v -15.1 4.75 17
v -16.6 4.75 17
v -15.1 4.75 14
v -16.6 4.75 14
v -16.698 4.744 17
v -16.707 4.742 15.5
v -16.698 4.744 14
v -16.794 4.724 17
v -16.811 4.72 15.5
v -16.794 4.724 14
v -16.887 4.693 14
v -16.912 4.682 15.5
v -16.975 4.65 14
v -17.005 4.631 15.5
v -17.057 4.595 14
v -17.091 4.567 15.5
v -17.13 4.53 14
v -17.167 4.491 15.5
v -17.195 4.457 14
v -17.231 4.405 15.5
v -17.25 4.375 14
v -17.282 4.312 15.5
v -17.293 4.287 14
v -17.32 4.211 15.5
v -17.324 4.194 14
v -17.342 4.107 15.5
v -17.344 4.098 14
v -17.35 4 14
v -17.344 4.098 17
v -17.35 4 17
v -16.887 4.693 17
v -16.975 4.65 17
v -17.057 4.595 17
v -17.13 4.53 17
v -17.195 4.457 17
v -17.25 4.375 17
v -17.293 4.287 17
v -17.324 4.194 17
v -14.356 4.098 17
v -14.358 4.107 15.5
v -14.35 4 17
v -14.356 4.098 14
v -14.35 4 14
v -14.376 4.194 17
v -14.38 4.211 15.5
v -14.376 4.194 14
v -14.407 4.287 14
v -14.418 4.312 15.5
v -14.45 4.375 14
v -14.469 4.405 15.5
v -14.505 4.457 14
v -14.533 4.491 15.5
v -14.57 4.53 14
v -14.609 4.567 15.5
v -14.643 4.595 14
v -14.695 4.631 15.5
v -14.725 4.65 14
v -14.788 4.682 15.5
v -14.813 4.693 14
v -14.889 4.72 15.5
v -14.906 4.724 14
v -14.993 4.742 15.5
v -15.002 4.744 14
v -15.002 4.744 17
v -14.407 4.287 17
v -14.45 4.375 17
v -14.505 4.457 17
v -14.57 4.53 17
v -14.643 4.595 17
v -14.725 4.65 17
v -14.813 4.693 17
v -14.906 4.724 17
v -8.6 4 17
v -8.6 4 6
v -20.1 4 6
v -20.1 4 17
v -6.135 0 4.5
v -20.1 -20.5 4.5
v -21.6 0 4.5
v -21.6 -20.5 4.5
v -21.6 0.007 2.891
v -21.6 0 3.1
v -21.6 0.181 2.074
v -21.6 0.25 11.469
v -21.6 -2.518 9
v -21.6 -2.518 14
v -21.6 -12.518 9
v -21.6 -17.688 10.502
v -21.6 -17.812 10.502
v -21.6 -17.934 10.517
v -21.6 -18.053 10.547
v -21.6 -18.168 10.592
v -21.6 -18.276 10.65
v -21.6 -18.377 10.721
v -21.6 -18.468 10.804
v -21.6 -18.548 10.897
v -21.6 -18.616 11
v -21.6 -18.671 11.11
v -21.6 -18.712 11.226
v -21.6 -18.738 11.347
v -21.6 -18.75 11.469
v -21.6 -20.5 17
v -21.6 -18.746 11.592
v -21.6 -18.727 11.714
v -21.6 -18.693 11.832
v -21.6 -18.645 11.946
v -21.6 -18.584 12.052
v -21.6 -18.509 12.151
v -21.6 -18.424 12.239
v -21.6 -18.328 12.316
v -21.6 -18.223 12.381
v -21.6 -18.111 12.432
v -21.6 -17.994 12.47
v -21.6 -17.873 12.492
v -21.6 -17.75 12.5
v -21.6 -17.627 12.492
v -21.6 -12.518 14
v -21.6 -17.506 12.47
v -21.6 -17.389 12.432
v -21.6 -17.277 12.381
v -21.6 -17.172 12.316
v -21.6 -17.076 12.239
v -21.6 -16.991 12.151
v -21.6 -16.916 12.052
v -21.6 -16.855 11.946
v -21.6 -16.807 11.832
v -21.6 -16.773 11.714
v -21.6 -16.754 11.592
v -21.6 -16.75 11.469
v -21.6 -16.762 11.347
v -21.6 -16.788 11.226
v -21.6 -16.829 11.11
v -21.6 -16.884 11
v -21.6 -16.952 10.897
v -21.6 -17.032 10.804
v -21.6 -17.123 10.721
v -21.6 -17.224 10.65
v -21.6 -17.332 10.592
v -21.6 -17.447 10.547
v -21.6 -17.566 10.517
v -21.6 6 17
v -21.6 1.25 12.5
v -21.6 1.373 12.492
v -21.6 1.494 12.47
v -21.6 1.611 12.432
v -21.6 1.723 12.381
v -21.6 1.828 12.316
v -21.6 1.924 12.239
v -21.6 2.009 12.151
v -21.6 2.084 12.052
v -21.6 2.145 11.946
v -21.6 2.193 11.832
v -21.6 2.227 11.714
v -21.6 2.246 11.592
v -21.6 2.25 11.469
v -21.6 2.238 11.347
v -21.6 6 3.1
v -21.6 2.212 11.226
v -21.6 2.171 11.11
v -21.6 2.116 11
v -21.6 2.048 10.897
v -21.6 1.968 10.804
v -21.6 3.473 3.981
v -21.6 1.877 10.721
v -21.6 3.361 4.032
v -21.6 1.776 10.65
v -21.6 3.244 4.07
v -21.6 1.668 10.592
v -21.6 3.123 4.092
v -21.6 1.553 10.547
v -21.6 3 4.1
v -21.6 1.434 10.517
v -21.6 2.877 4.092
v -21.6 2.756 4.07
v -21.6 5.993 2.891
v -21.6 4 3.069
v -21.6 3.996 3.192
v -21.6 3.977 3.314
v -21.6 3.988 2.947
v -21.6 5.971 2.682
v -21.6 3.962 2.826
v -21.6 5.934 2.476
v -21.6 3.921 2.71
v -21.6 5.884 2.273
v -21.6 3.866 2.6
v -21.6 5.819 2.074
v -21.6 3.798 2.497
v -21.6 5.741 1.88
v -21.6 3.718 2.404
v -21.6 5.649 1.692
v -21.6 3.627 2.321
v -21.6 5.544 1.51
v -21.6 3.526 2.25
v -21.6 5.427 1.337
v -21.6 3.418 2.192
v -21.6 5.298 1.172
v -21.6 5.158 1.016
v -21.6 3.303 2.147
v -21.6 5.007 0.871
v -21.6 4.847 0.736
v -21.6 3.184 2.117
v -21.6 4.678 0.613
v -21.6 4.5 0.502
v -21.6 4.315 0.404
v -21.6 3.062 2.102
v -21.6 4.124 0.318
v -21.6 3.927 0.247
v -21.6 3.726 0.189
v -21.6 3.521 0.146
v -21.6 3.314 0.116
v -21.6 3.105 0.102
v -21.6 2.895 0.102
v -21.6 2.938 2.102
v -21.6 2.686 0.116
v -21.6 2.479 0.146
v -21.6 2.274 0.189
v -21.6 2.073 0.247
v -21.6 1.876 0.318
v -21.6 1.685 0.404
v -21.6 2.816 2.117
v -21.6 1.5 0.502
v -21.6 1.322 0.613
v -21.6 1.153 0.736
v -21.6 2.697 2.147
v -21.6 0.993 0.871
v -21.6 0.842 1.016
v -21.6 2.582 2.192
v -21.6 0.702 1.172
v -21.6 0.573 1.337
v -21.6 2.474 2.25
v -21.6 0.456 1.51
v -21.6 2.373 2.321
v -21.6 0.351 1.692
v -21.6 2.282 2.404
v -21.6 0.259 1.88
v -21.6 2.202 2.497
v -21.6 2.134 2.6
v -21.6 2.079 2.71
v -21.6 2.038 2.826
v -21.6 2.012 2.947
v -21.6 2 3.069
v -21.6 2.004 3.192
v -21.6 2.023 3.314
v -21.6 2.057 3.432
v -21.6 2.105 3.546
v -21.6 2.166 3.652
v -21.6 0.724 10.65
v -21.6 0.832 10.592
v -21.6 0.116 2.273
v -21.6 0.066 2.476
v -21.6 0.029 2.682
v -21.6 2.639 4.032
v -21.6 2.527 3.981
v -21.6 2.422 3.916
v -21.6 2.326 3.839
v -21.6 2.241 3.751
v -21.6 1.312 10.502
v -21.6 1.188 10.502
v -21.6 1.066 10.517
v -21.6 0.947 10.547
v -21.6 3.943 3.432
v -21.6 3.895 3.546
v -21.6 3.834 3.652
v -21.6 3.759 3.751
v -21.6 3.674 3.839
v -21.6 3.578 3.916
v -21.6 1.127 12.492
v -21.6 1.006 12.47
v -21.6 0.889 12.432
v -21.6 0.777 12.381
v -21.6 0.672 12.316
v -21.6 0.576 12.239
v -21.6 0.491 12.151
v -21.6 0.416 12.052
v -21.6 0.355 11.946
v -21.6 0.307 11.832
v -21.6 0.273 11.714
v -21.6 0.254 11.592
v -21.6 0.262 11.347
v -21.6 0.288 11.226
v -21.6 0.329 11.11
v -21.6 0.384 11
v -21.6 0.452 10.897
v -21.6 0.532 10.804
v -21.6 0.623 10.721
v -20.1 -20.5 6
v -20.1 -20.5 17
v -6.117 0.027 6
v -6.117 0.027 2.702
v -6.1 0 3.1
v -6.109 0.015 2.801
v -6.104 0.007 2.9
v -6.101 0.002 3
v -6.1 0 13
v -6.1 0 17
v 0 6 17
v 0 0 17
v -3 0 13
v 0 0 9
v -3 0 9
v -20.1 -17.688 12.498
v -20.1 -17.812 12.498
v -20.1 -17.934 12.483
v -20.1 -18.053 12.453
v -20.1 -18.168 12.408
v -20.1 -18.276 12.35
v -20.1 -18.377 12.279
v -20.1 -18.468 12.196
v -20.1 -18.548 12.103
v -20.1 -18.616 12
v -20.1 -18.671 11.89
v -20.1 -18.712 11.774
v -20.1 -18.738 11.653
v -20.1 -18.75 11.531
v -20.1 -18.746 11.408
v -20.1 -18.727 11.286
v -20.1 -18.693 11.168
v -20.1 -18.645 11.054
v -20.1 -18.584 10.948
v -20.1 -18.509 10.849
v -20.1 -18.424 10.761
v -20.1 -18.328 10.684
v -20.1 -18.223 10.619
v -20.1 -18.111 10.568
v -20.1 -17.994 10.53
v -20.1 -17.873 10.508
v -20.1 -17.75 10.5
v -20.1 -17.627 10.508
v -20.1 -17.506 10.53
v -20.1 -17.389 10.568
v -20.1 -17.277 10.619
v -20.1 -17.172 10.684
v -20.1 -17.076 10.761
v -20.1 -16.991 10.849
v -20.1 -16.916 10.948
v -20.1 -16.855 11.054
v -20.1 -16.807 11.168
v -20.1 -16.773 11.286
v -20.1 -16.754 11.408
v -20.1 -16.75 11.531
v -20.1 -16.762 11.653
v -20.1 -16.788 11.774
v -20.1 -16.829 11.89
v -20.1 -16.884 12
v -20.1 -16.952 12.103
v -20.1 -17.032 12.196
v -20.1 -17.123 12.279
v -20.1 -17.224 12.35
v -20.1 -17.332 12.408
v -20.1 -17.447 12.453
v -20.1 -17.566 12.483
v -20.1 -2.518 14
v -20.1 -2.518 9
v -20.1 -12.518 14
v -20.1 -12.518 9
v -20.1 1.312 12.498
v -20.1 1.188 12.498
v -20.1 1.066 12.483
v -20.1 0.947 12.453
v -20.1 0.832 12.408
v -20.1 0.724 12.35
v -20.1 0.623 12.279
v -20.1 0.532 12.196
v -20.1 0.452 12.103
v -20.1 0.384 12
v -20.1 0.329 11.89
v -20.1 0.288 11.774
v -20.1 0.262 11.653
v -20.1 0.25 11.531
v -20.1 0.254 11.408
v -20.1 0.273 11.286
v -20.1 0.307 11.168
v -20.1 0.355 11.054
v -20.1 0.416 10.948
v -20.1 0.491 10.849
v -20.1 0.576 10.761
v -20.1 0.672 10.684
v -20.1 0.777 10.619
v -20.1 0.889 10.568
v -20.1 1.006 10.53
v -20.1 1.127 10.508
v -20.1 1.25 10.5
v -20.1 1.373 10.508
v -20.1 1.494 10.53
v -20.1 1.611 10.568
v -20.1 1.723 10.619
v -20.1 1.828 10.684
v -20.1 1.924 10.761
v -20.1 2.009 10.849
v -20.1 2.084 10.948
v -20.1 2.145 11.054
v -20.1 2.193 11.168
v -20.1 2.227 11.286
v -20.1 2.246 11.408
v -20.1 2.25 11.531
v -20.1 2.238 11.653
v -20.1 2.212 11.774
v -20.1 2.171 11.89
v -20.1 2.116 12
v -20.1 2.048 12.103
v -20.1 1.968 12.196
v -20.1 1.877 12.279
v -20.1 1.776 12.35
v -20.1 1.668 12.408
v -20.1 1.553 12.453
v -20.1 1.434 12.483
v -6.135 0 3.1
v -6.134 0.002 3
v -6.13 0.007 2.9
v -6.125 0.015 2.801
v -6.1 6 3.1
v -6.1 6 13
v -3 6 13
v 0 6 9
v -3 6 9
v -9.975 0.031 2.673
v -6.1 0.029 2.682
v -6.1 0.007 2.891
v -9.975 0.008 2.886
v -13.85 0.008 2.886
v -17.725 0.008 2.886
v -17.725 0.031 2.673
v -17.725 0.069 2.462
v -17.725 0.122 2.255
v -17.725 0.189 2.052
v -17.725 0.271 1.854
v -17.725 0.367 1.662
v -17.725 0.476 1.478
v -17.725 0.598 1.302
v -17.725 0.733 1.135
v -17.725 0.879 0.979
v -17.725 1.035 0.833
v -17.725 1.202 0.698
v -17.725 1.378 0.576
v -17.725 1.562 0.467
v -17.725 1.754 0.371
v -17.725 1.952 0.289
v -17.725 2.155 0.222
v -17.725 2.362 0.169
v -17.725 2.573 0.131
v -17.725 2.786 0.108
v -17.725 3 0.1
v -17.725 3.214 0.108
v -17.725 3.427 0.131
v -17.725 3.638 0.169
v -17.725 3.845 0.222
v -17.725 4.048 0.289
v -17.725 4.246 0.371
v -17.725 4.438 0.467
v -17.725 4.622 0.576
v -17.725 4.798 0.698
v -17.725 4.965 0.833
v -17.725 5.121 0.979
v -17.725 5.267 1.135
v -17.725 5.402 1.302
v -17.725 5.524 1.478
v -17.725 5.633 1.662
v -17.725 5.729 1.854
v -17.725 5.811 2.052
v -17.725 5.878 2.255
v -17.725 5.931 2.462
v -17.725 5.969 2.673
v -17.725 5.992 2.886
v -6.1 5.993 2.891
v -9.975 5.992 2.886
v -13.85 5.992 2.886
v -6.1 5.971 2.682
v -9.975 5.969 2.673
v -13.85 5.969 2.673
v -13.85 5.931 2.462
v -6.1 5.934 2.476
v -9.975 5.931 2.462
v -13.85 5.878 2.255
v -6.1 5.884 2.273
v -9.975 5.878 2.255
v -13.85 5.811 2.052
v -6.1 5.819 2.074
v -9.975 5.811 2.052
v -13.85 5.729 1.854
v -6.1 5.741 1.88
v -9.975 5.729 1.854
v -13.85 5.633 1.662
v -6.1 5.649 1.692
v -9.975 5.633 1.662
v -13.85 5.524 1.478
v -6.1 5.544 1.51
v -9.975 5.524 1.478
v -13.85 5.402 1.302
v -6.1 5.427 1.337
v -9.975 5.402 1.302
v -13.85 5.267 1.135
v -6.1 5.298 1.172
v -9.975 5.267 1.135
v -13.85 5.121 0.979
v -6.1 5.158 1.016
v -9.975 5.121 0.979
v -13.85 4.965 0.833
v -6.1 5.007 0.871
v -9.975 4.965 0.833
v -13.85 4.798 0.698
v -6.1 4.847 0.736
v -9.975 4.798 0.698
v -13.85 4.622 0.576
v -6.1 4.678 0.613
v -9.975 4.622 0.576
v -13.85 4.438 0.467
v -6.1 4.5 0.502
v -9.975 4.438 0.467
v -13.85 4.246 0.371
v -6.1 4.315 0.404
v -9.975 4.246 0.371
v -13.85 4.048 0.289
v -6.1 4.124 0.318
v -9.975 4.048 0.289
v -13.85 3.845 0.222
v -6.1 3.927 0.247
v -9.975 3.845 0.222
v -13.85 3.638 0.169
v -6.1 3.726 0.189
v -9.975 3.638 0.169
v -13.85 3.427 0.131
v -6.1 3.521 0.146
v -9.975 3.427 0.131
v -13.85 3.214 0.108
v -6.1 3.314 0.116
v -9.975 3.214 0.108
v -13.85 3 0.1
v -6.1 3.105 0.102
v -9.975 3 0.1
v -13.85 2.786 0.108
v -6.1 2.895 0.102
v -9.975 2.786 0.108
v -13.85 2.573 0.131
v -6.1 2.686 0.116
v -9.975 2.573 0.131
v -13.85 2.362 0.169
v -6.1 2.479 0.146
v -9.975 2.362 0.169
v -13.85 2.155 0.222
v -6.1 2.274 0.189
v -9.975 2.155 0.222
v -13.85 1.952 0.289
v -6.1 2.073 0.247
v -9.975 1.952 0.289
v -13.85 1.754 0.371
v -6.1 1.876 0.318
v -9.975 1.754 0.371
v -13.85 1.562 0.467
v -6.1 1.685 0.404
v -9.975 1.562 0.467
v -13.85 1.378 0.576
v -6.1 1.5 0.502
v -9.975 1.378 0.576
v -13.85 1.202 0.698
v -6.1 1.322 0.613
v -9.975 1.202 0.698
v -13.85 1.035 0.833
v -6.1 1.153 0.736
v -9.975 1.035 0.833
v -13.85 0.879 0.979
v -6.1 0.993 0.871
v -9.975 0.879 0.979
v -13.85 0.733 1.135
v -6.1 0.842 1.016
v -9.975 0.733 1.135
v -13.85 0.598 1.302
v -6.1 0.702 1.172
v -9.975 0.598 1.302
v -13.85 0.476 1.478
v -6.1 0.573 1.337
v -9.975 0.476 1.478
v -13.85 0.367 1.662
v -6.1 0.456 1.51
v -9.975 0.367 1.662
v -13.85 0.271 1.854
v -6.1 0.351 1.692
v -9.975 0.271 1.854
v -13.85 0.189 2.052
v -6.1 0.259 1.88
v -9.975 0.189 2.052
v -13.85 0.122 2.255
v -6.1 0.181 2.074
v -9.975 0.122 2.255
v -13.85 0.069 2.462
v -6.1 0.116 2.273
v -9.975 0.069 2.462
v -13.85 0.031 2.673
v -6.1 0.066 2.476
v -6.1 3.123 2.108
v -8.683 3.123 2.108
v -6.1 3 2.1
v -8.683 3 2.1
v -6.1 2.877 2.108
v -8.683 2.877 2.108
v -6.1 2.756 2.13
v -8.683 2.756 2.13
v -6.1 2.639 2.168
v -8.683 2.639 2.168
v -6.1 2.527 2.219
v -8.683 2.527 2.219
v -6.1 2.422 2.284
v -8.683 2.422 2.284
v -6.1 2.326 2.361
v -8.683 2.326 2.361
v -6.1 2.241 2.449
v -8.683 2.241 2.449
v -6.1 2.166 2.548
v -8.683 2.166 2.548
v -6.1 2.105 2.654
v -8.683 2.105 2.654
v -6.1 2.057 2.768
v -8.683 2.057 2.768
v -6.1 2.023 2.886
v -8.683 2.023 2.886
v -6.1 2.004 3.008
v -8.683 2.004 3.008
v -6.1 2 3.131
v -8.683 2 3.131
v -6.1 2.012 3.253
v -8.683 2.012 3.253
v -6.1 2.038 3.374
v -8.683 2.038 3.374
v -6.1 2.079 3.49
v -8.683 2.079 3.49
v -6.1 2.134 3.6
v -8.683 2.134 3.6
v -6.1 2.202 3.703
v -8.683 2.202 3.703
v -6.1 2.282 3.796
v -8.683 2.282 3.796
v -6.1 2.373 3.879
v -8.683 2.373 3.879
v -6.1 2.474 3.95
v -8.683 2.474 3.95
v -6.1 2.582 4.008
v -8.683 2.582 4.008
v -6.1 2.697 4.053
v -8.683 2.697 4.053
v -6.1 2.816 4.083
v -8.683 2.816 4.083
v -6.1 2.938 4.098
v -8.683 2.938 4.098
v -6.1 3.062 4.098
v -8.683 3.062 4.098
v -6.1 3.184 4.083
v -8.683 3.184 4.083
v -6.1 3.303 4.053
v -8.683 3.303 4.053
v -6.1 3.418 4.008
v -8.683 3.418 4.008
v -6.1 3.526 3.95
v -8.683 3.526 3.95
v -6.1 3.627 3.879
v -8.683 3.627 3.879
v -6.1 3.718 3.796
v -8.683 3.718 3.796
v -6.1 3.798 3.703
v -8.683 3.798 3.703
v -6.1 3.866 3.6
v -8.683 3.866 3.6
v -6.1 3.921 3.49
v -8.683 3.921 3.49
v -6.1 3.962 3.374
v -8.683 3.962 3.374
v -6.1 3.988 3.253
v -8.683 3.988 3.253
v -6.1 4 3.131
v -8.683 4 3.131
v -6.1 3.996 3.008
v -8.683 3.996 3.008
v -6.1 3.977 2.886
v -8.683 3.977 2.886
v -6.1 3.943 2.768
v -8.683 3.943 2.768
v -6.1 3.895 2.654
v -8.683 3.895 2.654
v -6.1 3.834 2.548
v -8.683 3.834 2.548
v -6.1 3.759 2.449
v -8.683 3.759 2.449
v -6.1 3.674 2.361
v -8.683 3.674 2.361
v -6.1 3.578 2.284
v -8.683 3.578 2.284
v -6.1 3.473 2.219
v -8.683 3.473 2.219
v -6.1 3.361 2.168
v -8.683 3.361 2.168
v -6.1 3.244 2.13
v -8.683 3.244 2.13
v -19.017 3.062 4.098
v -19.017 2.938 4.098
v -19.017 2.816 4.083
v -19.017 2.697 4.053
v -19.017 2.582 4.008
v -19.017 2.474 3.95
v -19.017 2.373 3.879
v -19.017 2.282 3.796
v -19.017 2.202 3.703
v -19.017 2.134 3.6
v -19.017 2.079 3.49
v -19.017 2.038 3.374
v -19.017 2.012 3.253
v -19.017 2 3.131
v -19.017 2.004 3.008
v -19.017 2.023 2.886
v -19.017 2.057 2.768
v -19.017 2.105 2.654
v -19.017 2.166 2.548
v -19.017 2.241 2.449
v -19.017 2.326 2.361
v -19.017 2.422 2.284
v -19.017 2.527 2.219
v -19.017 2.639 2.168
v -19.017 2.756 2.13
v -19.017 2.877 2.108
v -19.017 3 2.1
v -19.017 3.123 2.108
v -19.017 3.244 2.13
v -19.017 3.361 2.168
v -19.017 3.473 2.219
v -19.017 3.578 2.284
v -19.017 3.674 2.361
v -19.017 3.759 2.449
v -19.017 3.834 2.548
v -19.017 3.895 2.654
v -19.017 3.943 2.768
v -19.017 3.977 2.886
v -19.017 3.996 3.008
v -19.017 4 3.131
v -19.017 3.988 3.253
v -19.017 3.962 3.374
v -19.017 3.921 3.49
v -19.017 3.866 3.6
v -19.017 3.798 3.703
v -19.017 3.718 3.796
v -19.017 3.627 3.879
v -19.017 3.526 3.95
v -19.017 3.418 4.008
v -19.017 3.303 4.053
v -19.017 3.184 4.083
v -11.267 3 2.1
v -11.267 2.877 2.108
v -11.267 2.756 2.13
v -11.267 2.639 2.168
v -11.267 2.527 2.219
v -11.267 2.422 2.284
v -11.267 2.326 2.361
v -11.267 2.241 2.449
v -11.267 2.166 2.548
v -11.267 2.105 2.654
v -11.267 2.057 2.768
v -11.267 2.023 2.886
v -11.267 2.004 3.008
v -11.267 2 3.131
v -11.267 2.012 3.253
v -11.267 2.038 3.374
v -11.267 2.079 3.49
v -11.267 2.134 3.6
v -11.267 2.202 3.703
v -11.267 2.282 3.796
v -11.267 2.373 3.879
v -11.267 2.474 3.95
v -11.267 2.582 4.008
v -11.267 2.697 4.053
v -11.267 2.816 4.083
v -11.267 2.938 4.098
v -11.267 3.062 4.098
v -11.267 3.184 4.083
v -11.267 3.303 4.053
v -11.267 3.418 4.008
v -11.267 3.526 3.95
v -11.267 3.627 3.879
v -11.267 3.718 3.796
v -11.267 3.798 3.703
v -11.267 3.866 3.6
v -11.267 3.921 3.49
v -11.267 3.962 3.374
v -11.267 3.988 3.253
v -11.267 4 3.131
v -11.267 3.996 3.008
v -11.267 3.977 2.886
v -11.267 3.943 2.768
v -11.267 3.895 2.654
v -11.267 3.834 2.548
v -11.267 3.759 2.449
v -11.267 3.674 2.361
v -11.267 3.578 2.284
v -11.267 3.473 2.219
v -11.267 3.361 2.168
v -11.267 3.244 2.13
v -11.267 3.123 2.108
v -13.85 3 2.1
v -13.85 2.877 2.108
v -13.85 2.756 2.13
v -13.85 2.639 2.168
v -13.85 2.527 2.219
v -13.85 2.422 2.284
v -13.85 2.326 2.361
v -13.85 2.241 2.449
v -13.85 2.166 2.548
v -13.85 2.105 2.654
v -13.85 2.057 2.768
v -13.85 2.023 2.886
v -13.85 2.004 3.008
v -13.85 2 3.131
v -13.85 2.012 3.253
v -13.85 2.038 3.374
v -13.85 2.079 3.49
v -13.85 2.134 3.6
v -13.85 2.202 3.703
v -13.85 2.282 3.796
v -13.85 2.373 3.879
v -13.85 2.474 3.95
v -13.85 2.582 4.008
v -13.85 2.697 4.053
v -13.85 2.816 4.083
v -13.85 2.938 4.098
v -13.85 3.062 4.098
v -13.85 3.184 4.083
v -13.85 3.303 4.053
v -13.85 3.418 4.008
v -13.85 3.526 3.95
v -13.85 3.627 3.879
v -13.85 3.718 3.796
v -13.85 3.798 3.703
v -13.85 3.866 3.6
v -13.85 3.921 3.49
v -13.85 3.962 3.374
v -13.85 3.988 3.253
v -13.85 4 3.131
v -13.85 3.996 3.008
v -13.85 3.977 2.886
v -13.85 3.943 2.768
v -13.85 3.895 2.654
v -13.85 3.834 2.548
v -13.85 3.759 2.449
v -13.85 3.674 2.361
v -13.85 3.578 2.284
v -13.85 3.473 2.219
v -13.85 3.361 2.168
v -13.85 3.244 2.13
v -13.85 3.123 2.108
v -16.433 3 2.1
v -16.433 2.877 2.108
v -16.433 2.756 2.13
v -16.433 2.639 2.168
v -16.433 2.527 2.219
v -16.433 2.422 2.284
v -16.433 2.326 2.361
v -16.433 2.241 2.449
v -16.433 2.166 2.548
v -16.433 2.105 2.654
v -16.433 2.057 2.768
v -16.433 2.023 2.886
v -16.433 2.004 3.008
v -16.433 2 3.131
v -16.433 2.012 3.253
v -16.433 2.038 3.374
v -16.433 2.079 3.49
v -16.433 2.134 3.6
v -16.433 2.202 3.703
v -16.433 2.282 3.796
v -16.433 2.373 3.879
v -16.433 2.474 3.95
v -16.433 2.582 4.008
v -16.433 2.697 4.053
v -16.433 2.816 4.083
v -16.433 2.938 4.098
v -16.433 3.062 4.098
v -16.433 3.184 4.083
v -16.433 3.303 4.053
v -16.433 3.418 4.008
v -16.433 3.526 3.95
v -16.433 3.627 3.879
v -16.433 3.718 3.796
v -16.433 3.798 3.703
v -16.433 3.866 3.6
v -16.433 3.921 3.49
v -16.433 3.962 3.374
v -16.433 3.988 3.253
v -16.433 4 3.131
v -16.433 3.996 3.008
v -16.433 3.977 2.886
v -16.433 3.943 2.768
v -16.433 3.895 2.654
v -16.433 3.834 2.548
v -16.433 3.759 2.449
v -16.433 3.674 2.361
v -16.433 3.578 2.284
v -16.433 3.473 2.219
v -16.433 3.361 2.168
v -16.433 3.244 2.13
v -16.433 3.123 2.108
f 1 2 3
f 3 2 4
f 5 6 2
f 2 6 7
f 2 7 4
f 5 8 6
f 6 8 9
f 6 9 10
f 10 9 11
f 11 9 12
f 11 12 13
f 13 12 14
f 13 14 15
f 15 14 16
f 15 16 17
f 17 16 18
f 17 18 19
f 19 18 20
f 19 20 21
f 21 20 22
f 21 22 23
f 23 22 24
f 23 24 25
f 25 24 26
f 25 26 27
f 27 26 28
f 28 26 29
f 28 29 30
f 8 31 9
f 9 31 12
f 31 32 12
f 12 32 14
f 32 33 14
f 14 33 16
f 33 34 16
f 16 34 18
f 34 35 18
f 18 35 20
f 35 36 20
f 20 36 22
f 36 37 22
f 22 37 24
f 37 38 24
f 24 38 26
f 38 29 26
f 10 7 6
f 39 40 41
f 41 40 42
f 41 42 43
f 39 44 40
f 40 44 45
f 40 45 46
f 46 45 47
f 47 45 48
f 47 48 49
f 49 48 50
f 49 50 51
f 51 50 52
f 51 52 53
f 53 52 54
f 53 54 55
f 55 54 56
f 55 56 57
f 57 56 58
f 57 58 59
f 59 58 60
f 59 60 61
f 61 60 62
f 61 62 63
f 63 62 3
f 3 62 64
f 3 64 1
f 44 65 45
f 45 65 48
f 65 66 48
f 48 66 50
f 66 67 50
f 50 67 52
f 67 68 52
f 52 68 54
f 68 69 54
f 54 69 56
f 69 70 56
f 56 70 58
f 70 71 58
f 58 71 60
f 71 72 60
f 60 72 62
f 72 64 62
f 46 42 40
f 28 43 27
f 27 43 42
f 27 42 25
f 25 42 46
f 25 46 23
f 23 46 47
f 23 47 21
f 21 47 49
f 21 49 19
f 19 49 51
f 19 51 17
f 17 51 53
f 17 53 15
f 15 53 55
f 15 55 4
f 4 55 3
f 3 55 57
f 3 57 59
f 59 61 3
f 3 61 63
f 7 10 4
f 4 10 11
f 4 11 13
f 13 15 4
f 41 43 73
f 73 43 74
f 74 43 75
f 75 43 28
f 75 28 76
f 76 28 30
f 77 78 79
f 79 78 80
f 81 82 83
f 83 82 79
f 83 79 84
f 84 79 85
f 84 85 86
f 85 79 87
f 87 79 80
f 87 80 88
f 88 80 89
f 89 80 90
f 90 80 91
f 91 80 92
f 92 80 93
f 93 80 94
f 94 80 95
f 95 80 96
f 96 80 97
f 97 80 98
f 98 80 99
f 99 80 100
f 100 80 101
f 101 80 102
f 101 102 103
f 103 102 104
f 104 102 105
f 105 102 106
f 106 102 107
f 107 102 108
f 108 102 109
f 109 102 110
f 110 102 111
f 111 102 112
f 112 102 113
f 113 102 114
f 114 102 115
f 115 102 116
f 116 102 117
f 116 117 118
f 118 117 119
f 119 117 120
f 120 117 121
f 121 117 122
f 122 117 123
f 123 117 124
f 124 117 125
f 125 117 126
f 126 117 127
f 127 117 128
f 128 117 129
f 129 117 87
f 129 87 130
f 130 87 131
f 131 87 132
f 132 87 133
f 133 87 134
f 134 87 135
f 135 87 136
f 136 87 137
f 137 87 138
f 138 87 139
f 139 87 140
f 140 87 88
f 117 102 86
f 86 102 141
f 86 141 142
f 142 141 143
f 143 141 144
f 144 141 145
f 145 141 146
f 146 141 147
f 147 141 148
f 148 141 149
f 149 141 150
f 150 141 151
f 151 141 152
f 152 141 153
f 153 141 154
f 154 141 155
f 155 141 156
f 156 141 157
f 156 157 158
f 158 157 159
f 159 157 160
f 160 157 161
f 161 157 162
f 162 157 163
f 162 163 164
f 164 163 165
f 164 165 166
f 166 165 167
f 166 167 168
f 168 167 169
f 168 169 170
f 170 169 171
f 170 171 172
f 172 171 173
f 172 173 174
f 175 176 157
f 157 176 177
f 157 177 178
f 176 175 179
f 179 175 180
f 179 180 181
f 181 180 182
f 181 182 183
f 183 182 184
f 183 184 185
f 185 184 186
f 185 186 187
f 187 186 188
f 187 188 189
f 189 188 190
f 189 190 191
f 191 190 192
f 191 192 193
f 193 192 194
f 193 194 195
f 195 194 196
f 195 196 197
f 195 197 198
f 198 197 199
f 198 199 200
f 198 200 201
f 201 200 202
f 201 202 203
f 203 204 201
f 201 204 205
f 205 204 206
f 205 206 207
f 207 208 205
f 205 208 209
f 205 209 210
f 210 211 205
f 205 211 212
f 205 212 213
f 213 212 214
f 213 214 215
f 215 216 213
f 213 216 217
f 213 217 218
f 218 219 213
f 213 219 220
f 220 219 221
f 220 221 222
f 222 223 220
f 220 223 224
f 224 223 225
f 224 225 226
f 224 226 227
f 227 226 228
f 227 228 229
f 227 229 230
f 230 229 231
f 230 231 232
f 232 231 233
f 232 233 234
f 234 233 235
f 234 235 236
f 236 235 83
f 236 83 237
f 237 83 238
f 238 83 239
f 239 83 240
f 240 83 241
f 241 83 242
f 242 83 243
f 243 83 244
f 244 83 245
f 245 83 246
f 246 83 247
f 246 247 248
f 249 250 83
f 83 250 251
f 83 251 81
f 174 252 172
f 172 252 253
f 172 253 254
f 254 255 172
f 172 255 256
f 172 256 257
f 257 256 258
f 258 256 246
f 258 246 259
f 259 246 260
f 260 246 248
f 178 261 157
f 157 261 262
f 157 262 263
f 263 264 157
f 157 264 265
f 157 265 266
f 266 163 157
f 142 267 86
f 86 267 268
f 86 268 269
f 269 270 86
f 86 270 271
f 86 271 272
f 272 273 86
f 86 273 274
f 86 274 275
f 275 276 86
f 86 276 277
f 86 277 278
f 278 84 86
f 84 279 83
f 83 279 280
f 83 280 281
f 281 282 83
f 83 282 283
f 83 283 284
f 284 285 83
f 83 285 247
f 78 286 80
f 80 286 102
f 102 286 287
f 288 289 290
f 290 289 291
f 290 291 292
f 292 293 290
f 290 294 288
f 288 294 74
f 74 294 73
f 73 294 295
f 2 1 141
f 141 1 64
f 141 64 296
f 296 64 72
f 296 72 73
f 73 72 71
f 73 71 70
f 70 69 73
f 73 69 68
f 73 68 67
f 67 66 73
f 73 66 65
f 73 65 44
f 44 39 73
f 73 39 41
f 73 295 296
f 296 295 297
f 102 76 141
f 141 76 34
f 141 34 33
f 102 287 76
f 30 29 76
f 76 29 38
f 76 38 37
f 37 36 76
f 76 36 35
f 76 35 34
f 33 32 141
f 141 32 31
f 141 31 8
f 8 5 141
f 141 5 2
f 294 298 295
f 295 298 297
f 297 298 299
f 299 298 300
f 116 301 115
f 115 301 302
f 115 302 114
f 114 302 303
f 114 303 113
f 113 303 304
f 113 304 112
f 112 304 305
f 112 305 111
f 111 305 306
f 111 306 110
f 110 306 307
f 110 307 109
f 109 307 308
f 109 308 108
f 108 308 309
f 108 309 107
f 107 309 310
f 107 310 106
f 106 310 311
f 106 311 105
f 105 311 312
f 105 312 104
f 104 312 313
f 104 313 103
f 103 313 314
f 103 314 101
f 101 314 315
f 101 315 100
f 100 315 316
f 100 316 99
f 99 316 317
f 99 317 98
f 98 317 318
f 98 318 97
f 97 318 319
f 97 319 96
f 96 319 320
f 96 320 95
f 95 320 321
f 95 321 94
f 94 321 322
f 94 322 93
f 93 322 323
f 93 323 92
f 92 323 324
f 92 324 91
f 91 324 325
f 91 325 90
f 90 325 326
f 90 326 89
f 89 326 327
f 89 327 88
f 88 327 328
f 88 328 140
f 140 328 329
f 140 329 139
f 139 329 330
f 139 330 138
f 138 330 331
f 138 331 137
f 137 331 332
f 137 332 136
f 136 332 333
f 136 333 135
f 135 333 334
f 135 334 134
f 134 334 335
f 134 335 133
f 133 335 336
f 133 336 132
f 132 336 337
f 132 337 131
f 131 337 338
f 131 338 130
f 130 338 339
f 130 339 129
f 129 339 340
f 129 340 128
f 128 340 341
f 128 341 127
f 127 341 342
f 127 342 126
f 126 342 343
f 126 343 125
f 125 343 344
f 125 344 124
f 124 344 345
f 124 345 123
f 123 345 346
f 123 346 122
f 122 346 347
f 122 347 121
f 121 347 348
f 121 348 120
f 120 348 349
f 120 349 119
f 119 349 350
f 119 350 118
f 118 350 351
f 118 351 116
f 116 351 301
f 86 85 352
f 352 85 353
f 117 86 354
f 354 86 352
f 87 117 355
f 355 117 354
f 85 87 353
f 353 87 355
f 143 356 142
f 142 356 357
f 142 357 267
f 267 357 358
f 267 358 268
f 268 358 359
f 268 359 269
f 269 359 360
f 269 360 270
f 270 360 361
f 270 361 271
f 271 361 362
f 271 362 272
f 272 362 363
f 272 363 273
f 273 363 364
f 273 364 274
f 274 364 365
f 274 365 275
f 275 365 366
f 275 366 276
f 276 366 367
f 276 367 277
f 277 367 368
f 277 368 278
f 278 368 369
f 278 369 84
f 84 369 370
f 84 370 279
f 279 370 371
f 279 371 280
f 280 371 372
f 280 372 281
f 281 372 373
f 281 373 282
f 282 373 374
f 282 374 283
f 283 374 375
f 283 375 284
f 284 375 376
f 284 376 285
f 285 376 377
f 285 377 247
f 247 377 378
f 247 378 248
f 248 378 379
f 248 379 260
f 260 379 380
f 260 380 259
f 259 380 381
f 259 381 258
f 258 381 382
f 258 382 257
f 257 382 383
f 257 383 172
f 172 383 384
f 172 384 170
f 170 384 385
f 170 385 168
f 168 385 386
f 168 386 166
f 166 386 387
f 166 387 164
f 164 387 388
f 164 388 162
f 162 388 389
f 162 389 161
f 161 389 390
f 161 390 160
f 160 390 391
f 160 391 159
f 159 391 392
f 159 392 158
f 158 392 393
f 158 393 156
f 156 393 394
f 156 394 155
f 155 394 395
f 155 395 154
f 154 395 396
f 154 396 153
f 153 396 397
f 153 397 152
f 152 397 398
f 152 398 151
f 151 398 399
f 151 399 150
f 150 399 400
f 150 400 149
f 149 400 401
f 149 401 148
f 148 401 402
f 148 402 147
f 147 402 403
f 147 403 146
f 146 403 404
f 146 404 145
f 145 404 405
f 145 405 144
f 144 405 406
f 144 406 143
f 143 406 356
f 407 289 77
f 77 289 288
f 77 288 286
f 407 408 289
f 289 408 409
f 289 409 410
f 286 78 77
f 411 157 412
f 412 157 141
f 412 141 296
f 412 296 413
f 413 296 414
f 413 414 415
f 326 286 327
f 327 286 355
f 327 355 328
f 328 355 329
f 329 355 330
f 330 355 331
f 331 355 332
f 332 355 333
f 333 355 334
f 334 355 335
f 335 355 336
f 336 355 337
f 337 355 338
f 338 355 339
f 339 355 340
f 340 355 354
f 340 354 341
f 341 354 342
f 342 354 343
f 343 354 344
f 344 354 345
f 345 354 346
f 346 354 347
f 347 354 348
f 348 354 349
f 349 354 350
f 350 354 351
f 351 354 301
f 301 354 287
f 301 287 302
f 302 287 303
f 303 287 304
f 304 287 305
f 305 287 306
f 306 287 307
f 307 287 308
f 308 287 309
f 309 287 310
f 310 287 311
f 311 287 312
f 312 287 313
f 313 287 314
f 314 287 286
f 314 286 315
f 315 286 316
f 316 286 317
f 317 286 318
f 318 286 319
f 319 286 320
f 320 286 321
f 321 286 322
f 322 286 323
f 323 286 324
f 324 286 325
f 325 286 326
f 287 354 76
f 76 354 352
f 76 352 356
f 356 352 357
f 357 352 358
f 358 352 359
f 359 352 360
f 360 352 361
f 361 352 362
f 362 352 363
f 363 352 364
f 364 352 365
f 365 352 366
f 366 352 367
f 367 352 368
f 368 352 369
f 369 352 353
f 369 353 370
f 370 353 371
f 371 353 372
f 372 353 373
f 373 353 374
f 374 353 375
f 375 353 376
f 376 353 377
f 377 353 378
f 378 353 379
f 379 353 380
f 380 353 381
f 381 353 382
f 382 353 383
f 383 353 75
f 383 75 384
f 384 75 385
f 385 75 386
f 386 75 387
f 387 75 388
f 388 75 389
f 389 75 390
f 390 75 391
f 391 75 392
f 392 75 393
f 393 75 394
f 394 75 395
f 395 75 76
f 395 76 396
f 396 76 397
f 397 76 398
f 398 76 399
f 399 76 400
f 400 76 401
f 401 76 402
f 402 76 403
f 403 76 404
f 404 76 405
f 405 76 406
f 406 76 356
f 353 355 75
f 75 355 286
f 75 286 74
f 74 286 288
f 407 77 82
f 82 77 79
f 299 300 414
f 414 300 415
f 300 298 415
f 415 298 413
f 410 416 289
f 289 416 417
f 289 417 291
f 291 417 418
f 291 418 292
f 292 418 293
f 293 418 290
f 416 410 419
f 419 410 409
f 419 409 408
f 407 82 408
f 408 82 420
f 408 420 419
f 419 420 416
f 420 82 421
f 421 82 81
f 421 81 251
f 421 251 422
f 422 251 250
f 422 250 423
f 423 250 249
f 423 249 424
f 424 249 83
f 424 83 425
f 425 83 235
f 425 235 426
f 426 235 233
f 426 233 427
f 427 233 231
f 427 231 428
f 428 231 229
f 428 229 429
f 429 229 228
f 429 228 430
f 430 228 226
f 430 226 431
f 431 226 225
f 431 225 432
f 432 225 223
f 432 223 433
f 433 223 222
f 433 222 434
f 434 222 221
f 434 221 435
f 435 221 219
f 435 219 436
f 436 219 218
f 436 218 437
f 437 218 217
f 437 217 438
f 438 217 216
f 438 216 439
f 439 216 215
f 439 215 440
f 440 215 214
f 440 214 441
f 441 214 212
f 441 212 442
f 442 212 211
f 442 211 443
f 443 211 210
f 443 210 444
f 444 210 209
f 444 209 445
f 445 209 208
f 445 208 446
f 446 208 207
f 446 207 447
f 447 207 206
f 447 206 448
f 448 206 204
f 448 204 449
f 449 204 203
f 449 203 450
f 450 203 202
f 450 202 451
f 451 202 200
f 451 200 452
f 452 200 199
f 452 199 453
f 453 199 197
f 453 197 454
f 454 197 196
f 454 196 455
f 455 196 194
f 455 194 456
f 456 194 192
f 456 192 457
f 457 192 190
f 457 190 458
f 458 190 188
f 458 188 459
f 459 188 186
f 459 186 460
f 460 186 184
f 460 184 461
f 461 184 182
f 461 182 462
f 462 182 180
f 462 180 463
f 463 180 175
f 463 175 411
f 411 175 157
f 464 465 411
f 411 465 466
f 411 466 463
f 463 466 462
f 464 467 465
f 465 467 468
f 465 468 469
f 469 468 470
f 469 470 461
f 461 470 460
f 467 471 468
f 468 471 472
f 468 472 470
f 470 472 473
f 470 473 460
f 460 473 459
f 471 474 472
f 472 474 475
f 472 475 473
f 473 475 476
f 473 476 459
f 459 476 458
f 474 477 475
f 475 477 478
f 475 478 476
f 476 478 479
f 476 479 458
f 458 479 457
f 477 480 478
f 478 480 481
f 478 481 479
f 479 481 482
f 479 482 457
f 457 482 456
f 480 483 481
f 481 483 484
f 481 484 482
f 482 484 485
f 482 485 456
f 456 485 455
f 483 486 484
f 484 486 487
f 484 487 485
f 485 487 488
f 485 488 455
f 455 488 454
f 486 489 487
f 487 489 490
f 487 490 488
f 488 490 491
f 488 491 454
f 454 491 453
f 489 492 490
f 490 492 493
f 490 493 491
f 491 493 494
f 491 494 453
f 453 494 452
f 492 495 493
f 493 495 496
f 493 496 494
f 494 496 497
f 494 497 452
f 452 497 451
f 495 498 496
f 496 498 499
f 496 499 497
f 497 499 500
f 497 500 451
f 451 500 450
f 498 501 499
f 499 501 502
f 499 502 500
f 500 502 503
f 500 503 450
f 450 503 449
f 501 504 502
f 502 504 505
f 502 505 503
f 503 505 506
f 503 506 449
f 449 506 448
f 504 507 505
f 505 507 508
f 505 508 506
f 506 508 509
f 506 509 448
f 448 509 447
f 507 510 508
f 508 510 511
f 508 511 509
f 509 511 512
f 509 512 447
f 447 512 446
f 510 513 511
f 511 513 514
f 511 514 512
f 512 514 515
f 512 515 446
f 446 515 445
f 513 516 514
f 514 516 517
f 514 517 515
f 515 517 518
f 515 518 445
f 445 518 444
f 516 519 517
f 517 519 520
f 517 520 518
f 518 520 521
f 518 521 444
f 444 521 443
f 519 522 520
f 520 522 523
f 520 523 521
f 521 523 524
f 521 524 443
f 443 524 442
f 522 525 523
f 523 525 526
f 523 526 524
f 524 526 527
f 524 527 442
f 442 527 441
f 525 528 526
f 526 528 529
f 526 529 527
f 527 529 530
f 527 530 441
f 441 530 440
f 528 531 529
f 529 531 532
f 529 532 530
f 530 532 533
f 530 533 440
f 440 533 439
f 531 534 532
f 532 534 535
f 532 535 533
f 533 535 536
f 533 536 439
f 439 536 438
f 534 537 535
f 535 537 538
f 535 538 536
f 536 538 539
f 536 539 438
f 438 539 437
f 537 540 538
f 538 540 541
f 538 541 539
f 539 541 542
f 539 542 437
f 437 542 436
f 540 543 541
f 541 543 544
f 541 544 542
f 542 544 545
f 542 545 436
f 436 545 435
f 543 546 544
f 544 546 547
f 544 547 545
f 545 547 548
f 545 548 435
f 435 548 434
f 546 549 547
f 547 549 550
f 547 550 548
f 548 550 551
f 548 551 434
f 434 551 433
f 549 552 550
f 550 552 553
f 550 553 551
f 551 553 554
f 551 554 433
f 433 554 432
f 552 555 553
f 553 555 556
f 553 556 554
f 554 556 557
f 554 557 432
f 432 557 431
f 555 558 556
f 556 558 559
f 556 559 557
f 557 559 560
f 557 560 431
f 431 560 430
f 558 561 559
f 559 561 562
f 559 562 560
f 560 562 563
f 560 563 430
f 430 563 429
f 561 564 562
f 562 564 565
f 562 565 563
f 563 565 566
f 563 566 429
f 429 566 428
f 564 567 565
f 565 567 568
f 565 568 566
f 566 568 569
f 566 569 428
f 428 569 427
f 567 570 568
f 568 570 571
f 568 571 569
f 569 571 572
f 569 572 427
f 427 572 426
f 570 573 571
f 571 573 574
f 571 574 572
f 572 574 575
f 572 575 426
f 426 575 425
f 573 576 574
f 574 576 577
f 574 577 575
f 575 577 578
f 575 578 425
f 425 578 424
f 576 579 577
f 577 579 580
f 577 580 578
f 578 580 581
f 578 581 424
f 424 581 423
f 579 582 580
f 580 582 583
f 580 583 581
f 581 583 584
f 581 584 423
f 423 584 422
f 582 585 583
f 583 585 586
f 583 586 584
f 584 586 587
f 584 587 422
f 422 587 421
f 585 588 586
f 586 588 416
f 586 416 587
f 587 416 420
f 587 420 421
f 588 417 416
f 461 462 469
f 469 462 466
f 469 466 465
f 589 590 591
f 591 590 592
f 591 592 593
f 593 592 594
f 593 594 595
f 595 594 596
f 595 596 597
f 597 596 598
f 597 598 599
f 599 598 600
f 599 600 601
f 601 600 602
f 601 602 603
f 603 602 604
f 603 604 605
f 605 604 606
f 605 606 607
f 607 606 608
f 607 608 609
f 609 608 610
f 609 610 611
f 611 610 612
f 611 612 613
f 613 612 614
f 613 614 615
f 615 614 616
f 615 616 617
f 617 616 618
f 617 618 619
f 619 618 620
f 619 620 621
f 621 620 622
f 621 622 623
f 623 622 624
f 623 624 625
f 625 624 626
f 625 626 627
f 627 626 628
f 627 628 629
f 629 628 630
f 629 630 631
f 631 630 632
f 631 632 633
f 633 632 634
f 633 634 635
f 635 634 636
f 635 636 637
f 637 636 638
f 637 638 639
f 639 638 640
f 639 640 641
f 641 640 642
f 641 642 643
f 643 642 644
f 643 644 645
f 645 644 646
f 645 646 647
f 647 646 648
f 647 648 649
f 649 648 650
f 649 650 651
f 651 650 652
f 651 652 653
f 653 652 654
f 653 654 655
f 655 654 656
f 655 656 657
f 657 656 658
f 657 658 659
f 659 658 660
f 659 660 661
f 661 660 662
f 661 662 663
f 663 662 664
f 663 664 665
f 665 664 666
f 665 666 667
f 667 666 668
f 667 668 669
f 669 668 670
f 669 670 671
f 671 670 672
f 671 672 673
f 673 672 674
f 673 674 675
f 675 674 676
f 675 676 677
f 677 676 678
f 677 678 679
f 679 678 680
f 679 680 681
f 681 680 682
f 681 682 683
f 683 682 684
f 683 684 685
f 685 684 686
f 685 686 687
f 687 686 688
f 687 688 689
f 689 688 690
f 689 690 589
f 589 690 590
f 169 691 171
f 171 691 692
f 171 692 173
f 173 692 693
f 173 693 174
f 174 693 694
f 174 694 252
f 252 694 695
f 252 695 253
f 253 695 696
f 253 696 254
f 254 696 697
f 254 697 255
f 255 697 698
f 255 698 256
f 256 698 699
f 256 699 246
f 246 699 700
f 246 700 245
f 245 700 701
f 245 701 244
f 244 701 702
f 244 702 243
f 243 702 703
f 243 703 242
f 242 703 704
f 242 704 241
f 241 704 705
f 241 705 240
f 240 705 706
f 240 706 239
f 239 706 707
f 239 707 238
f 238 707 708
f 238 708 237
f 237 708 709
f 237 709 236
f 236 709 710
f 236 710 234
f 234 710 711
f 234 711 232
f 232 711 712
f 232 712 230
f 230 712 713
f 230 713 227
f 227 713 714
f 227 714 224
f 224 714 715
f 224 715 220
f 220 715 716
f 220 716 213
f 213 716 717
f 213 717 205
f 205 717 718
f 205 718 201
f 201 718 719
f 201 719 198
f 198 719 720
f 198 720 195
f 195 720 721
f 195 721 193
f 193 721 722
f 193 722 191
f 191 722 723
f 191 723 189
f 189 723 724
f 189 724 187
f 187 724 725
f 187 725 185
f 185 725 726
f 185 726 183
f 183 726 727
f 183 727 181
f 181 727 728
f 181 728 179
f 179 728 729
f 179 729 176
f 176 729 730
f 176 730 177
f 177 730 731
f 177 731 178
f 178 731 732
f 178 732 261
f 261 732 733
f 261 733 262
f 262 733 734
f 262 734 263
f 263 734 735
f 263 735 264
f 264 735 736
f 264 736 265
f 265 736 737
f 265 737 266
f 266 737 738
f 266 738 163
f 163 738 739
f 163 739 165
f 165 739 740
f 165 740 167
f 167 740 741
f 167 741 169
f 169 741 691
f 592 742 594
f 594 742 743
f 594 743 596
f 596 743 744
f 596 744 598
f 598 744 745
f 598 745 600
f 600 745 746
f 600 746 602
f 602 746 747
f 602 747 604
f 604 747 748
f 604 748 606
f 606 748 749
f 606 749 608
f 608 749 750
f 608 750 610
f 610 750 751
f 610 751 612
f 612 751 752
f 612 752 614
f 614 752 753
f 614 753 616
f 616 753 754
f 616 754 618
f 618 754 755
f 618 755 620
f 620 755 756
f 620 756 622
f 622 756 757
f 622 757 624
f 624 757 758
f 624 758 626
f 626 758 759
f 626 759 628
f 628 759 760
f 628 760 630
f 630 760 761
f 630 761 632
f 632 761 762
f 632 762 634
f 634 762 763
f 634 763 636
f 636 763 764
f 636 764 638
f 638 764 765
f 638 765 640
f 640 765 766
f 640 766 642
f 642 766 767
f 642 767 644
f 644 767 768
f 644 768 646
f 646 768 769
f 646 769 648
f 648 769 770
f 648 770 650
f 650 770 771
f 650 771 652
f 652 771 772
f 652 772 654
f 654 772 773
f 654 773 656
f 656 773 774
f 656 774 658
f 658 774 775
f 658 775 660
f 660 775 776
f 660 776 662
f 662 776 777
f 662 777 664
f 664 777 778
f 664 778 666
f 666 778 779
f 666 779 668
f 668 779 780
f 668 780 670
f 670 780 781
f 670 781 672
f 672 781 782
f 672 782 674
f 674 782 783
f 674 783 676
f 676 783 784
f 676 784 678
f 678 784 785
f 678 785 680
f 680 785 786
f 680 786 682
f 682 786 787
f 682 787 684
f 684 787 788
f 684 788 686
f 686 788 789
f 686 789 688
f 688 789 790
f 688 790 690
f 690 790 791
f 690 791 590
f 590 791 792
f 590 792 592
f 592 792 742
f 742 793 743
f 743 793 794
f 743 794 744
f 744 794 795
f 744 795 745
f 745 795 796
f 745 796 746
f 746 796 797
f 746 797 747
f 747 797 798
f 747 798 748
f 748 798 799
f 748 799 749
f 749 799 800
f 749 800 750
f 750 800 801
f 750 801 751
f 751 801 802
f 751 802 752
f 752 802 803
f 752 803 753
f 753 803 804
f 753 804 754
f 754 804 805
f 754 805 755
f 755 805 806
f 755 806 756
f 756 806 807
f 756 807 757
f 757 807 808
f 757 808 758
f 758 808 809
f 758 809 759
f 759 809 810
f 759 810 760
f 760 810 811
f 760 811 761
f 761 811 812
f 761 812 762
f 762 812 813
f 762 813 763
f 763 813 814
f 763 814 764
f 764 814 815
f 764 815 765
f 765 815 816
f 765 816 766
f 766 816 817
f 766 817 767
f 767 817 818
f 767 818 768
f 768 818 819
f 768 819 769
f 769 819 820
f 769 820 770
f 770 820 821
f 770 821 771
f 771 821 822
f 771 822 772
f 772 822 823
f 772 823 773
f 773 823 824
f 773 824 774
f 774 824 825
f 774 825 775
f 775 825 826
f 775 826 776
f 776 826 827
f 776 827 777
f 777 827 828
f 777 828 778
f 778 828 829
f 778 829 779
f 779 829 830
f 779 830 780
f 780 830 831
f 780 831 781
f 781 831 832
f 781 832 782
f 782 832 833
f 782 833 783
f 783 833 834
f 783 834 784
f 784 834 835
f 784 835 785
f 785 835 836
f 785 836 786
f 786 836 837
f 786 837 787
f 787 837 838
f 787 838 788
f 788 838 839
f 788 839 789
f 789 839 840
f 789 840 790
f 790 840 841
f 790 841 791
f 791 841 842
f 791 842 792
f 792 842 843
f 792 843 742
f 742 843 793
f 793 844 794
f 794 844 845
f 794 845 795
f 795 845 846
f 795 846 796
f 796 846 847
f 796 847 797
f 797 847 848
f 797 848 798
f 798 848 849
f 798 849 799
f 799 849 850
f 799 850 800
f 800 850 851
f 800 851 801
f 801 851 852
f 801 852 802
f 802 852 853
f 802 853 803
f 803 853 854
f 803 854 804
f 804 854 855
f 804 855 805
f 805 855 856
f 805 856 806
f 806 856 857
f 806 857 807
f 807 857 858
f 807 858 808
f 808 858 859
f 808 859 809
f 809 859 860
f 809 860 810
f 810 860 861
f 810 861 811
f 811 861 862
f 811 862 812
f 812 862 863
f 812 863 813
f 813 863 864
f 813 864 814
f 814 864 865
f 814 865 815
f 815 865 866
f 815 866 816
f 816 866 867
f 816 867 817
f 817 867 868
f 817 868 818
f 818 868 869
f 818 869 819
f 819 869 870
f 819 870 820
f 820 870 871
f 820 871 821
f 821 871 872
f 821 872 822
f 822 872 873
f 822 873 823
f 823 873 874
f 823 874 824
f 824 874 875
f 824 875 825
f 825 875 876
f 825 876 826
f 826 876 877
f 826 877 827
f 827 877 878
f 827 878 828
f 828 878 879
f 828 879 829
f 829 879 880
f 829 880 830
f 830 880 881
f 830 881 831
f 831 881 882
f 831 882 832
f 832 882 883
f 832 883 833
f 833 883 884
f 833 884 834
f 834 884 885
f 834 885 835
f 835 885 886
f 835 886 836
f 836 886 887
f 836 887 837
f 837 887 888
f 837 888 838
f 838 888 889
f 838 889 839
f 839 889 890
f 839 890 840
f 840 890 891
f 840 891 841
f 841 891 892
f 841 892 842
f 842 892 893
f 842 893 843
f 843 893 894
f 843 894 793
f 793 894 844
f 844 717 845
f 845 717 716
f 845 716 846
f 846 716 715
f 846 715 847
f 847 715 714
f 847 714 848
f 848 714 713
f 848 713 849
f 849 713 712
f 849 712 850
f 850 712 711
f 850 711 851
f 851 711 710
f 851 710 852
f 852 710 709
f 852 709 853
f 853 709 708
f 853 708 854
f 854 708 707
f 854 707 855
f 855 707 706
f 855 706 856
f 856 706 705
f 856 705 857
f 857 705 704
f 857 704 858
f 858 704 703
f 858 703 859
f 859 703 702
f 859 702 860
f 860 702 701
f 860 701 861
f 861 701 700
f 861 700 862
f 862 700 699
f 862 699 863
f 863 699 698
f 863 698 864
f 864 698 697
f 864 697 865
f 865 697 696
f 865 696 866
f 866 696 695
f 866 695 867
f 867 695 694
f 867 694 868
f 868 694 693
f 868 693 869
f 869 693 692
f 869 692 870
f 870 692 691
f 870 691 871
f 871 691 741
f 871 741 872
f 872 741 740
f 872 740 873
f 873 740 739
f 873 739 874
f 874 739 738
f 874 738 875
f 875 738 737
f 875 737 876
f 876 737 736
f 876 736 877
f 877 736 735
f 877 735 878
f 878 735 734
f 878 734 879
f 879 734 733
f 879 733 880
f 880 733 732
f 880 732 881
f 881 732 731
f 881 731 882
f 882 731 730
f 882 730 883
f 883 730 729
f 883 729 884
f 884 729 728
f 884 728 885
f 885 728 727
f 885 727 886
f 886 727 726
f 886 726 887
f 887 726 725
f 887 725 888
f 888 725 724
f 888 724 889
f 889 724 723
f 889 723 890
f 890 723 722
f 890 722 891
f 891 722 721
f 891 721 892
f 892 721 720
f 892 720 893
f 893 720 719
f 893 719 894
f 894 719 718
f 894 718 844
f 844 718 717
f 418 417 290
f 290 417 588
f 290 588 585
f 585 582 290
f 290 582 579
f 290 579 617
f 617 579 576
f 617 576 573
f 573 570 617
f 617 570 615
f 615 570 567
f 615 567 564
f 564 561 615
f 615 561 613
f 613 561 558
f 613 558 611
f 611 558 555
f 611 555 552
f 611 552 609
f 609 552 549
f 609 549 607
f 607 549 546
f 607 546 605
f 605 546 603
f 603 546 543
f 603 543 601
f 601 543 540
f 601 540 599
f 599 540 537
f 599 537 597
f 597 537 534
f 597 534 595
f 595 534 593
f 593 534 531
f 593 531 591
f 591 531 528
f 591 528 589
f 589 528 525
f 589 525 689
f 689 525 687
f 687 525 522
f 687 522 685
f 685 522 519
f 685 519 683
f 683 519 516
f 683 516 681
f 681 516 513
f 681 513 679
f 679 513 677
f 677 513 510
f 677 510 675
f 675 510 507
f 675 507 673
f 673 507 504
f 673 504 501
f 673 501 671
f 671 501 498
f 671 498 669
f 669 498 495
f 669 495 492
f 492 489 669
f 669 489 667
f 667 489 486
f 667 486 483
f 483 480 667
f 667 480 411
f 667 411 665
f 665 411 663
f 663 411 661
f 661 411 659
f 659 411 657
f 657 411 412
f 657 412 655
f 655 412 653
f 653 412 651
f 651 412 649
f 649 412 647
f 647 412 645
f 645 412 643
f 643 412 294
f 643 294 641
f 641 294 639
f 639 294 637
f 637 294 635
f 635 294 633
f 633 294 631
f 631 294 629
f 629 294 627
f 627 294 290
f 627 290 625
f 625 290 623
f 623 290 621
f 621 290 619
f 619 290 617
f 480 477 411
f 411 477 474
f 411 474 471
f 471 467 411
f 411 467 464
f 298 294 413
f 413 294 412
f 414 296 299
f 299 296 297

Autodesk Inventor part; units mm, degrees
ref_plane "YZ Plane" through (0, 0, 0) normal (1, 0, 0) x (0, 1, 0)
ref_plane "XZ Plane" through (0, 0, 0) normal (0, 1, 0) x (-1, 0, 0)
ref_plane "XY Plane" through (0, 0, 0) normal (0, 0, 1) x (1, 0, 0)
sketch "Sketch1" plane through (0, 0, 0) normal (0, 1, 0) x (-1, 0, 0)
  line L0 (0, 0) -> (21.6, 0)
  line L1 (21.6, 0) -> (21.6, 17)
  line L2 (21.6, 17) -> (0, 17)
  line L3 (0, 17) -> (0, 0)
  line L4 (6.1, 13) -> (3, 13)
  line L5 (3, 13) -> (3, 0)
  line L6 (3, 0) -> (6.1, 0)
  line L7 (6.1, 0) -> (6.1, 13)
  line L8 (21.6, 17) -> (9.1, 17)
  line L9 (9.1, 17) -> (9.1, 0)
  line L10 (9.1, 0) -> (21.6, 0)
  line L11 (21.6, 0) -> (21.6, 17)
  line L12 (9.1, 17) -> (21.6, 6.2)
  point P0 (21.6, 6.2)
  point P1 (9.1, 17)
  dimension "d1" = 17
  dimension "d2" = 3.1
  dimension "d3" = 3
  dimension "d4" = 3
  dimension "d5" = 6.2
  dimension "d17" = 13
  dimension "d18" = 12.5
extrude "Extrusion1" add sketch "Sketch1" along normal blind 6 contours L3 L2 L9 L0 L7 L4 L5 | L12 L1 L0 L9
sketch "Sketch2" plane through (-21.6, 0, 0) normal (-1, 0, 0) x (0, 0, 1)
  circle A0 centre (3.1, 3) radius 3
  line L0 (0, 0) -> (13, 0) projected
  line L1 (0, 0) -> (0, 6) projected
  line L2 (17, 6) -> (0, 6) projected
  line L3 (0, 0) -> (6.2302, 0)
  line L4 (6.2302, 0) -> (6.2302, 6)
  line L5 (6.2302, 6) -> (0, 6)
  line L6 (0, 6) -> (0, 0)
  circle A1 centre (3.1, 3) radius 1
  point P0 (3.1, 6)
  point P1 (3.1, 0)
  dimension "d8" = 3.1
  dimension "d9" = 2
extrude "Extrusion2" cut sketch "Sketch2" against normal up to surface (18.6 mm away) contours A0 L0 L1 L2 | A1
sketch "Sketch3" plane through (0, 6, 0) normal (0, 1, 0) x (1, 0, 0)
  line L0 (-3, 0) -> (-3, -13) projected
  line L1 (0, 0) -> (-3, 0) projected
  line L2 (-3, -9) -> (0, -9)
  line L3 (0, -9) -> (0, 0)
  line L4 (0, 0) -> (-3, 0)
  line L5 (-3, 0) -> (-3, -9)
  line L6 (-3, -13) -> (-6.1, -13) projected
  line L7 (-9.1, -17) -> (0, -17) projected
  dimension "d13" = 8
extrude "Extrusion3" cut sketch "Sketch3" against normal blind 10
sketch "Sketch4" plane through (0, 0, 0) normal (0, -1, 0) x (1, 0, 0)
  line L0 (-21.6, 6.2) -> (-9.1, 17) projected
  line L1 (-9.1, 17) -> (-20.1, 17)
  line L2 (-20.1, 17) -> (-20.1, 7.496)
  line L3 (-20.1, 7.496) -> (-9.1, 7.496)
  line L4 (-9.1, 7.496) -> (-9.1, 17)
  line L5 (-6.1, 13) -> (-6.1, 3.1) projected
  point P0 (0, 0)
  dimension "d19" = 14
extrude "Extrusion4" cut sketch "Sketch4" against normal blind 4 contours L0 L4 L3
sketch "Sketch5" plane through (0, 0, 0) normal (0, -1, 0) x (1, 0, 0)
  line L0 (-9.1, 17) -> (-9.1, 7.496) projected
  line L1 (-9.1, 17) -> (-8.6, 17)
  line L2 (-8.6, 17) -> (-8.6, 7.496)
  line L3 (-8.6, 7.496) -> (-9.1, 7.496)
  line L4 (-9.1, 7.496) -> (-9.1, 17)
  line L5 (-6.1, 13) -> (-6.1, 3.1) projected
  point P0 (0, 0)
  dimension "d22" = 2.5
extrude "Extrusion5" cut sketch "Sketch5" against normal up to surface (4 mm away)
sketch "Sketch7" plane through (0, 4, 0) normal (0, -1, 0) x (1, 0, 0)
  line L0 (-8.6, 7.496) -> (-8.6, 17) projected
  line L1 (-8.6, 17) -> (-20.1, 17)
  line L2 (-20.1, 17) -> (-20.1, 6)
  line L3 (-20.1, 6) -> (-8.6, 6)
  line L4 (-8.6, 6) -> (-8.6, 17)
  point P0 (0, 0)
  dimension "d25" = 11.5
  dimension "d26" = 11
extrude "Extrusion6" cut sketch "Sketch7" along normal blind 10
sketch "Sketch8" plane through (0, 4, 0) normal (0, -1, 0) x (1, 0, 0)
  line L0 (-20.1, 7.496) -> (-20.1, 6) projected
  line L1 (-8.6, 6) -> (-8.6, 17) projected
  line L2 (-20.1, 6) -> (-8.6, 6)
  line L3 (-8.6, 6) -> (-8.6, 17)
  line L4 (-8.6, 17) -> (-20.1, 17)
  line L5 (-20.1, 17) -> (-20.1, 6)
  point P0 (0, 0)
extrude "Extrusion7" add sketch "Sketch8" against normal up to surface (2 mm away)
sketch "Sketch9" plane through (0, 6, 0) normal (0, 1, 0) x (1, 0, 0)
  line L0 (-20.1, -17) -> (-20.1, -7.496) projected
  line L1 (-21.6, -3.1) -> (-21.6, -6.2) projected
  line L2 (-20.1, -17) -> (-21.6, -17)
  line L3 (-21.6, -17) -> (-21.6, -6)
  line L4 (-21.6, -6) -> (-20.1, -6)
  line L5 (-20.1, -6) -> (-20.1, -17)
  point P0 (0, 0)
  dimension "d31" = 11
extrude "Extrusion8" add sketch "Sketch9" against normal blind 26.5
sketch "Sketch11" plane through (-20.1, 0, 6) normal (0, 0, -1) x (-1, 0, 0)
  line L0 (0, -20.5) -> (1.5, -20.5) projected
  line L1 (1.5, -20.5) -> (-13.9653, -20.5)
  line L2 (-13.9653, -20.5) -> (-13.9653, 0)
  line L3 (-13.9653, 0) -> (1.5, 0)
  line L4 (1.5, 0) -> (1.5, -20.5)
  line L5 (-13.9653, 0) -> (0, -20.5)
  point P0 (-20.1, 0)
extrude "Extrusion9" add sketch "Sketch11" along normal blind 2 contours L5 L3 L4 L0
sketch "Sketch13" plane through (-20.1, 4, 17) normal (1, 0, 0) x (0, 0, -1)
  circle A0 centre (5.5, -2.75) radius 1
  circle A1 centre (5.5, -21.75) radius 1
  line L0 (11, -24.5) -> (0, -24.5) projected
  line L1 (0, 0) -> (11, 0) projected
  line L2 (8, -6.5185) -> (3, -6.5185)
  line L3 (3, -6.5185) -> (3, -16.5185)
  line L4 (3, -16.5185) -> (8, -16.5185)
  line L5 (8, -16.5185) -> (8, -6.5185)
  line L6 (0, 0) -> (0, -24.5) projected
  point P0 (17, -4)
  dimension "d36" = 2.75
  dimension "d37" = 2.75
  dimension "d38" = 2
  dimension "d39" = 2
  dimension "d40" = 10
  dimension "d41" = 5
  dimension "d42" = 3
  dimension "d43" = 5.5
  dimension "d44" = 5.5
extrude "Extrusion10" cut sketch "Sketch13" against normal blind 2
chamfer "Chamfer1" distance 2.5 distance2 4 1 edges at (-8.6, 0, 11.5)
sketch "Sketch14" plane through (-20.1, 0, 4) normal (0, 0, -1) x (-1, 0, 0)
  line L0 (1.5, 6) -> (1.5, -20.5) projected
  line L1 (-14, 6) -> (-14, 0) projected
  line L2 (1.5, -20.5) -> (-14, -20.5)
  line L3 (-14, -20.5) -> (-14, 0)
  line L4 (-14, 0) -> (1.5, 0)
  line L5 (1.5, 0) -> (1.5, -20.5)
  point P0 (-20.1, 0)
extrude "Extrusion11" cut sketch "Sketch14" against normal blind 0.5
sketch "Sketch15" plane through (-21.6, 6, 17) normal (0, 0, 1) x (1, 0, 0)
  line L0 (1.5, -2) -> (13, -2) projected
  circle A0 centre (5, -2) radius 0.75
  circle A1 centre (6.5, -2) radius 0.75
  line L1 (5, -2) -> (5.9454, -2)
  line L2 (5, -1.4951) -> (5, -2)
  line L3 (1.5, -2) -> (1.5, -26.5) projected
  line L4 (5, -2) -> (6.5, -2)
  line L5 (6.5, -2) -> (6.5, -1.25)
  line L6 (6.5, -1.25) -> (5, -1.25)
  line L7 (5, -1.25) -> (5, -2)
  point P0 (21.6, -6)
  point P1 (7.25, -2)
  point P2 (5, -1.25)
  point P3 (4.25, -2)
  dimension "d53" = 1.5
  dimension "d52" = 1.5
  dimension "d54" = 1.5
  dimension "d56" = 0
extrude "Extrusion12" cut sketch "Sketch15" against normal blind 3 contours L2 L7 A0 L0 | L0 A0 L7 L2 | A1 L5 L0 | A0 L6 A1 | A1 L0 L5
properties part number "Pi3B_spacer_R_switch"
